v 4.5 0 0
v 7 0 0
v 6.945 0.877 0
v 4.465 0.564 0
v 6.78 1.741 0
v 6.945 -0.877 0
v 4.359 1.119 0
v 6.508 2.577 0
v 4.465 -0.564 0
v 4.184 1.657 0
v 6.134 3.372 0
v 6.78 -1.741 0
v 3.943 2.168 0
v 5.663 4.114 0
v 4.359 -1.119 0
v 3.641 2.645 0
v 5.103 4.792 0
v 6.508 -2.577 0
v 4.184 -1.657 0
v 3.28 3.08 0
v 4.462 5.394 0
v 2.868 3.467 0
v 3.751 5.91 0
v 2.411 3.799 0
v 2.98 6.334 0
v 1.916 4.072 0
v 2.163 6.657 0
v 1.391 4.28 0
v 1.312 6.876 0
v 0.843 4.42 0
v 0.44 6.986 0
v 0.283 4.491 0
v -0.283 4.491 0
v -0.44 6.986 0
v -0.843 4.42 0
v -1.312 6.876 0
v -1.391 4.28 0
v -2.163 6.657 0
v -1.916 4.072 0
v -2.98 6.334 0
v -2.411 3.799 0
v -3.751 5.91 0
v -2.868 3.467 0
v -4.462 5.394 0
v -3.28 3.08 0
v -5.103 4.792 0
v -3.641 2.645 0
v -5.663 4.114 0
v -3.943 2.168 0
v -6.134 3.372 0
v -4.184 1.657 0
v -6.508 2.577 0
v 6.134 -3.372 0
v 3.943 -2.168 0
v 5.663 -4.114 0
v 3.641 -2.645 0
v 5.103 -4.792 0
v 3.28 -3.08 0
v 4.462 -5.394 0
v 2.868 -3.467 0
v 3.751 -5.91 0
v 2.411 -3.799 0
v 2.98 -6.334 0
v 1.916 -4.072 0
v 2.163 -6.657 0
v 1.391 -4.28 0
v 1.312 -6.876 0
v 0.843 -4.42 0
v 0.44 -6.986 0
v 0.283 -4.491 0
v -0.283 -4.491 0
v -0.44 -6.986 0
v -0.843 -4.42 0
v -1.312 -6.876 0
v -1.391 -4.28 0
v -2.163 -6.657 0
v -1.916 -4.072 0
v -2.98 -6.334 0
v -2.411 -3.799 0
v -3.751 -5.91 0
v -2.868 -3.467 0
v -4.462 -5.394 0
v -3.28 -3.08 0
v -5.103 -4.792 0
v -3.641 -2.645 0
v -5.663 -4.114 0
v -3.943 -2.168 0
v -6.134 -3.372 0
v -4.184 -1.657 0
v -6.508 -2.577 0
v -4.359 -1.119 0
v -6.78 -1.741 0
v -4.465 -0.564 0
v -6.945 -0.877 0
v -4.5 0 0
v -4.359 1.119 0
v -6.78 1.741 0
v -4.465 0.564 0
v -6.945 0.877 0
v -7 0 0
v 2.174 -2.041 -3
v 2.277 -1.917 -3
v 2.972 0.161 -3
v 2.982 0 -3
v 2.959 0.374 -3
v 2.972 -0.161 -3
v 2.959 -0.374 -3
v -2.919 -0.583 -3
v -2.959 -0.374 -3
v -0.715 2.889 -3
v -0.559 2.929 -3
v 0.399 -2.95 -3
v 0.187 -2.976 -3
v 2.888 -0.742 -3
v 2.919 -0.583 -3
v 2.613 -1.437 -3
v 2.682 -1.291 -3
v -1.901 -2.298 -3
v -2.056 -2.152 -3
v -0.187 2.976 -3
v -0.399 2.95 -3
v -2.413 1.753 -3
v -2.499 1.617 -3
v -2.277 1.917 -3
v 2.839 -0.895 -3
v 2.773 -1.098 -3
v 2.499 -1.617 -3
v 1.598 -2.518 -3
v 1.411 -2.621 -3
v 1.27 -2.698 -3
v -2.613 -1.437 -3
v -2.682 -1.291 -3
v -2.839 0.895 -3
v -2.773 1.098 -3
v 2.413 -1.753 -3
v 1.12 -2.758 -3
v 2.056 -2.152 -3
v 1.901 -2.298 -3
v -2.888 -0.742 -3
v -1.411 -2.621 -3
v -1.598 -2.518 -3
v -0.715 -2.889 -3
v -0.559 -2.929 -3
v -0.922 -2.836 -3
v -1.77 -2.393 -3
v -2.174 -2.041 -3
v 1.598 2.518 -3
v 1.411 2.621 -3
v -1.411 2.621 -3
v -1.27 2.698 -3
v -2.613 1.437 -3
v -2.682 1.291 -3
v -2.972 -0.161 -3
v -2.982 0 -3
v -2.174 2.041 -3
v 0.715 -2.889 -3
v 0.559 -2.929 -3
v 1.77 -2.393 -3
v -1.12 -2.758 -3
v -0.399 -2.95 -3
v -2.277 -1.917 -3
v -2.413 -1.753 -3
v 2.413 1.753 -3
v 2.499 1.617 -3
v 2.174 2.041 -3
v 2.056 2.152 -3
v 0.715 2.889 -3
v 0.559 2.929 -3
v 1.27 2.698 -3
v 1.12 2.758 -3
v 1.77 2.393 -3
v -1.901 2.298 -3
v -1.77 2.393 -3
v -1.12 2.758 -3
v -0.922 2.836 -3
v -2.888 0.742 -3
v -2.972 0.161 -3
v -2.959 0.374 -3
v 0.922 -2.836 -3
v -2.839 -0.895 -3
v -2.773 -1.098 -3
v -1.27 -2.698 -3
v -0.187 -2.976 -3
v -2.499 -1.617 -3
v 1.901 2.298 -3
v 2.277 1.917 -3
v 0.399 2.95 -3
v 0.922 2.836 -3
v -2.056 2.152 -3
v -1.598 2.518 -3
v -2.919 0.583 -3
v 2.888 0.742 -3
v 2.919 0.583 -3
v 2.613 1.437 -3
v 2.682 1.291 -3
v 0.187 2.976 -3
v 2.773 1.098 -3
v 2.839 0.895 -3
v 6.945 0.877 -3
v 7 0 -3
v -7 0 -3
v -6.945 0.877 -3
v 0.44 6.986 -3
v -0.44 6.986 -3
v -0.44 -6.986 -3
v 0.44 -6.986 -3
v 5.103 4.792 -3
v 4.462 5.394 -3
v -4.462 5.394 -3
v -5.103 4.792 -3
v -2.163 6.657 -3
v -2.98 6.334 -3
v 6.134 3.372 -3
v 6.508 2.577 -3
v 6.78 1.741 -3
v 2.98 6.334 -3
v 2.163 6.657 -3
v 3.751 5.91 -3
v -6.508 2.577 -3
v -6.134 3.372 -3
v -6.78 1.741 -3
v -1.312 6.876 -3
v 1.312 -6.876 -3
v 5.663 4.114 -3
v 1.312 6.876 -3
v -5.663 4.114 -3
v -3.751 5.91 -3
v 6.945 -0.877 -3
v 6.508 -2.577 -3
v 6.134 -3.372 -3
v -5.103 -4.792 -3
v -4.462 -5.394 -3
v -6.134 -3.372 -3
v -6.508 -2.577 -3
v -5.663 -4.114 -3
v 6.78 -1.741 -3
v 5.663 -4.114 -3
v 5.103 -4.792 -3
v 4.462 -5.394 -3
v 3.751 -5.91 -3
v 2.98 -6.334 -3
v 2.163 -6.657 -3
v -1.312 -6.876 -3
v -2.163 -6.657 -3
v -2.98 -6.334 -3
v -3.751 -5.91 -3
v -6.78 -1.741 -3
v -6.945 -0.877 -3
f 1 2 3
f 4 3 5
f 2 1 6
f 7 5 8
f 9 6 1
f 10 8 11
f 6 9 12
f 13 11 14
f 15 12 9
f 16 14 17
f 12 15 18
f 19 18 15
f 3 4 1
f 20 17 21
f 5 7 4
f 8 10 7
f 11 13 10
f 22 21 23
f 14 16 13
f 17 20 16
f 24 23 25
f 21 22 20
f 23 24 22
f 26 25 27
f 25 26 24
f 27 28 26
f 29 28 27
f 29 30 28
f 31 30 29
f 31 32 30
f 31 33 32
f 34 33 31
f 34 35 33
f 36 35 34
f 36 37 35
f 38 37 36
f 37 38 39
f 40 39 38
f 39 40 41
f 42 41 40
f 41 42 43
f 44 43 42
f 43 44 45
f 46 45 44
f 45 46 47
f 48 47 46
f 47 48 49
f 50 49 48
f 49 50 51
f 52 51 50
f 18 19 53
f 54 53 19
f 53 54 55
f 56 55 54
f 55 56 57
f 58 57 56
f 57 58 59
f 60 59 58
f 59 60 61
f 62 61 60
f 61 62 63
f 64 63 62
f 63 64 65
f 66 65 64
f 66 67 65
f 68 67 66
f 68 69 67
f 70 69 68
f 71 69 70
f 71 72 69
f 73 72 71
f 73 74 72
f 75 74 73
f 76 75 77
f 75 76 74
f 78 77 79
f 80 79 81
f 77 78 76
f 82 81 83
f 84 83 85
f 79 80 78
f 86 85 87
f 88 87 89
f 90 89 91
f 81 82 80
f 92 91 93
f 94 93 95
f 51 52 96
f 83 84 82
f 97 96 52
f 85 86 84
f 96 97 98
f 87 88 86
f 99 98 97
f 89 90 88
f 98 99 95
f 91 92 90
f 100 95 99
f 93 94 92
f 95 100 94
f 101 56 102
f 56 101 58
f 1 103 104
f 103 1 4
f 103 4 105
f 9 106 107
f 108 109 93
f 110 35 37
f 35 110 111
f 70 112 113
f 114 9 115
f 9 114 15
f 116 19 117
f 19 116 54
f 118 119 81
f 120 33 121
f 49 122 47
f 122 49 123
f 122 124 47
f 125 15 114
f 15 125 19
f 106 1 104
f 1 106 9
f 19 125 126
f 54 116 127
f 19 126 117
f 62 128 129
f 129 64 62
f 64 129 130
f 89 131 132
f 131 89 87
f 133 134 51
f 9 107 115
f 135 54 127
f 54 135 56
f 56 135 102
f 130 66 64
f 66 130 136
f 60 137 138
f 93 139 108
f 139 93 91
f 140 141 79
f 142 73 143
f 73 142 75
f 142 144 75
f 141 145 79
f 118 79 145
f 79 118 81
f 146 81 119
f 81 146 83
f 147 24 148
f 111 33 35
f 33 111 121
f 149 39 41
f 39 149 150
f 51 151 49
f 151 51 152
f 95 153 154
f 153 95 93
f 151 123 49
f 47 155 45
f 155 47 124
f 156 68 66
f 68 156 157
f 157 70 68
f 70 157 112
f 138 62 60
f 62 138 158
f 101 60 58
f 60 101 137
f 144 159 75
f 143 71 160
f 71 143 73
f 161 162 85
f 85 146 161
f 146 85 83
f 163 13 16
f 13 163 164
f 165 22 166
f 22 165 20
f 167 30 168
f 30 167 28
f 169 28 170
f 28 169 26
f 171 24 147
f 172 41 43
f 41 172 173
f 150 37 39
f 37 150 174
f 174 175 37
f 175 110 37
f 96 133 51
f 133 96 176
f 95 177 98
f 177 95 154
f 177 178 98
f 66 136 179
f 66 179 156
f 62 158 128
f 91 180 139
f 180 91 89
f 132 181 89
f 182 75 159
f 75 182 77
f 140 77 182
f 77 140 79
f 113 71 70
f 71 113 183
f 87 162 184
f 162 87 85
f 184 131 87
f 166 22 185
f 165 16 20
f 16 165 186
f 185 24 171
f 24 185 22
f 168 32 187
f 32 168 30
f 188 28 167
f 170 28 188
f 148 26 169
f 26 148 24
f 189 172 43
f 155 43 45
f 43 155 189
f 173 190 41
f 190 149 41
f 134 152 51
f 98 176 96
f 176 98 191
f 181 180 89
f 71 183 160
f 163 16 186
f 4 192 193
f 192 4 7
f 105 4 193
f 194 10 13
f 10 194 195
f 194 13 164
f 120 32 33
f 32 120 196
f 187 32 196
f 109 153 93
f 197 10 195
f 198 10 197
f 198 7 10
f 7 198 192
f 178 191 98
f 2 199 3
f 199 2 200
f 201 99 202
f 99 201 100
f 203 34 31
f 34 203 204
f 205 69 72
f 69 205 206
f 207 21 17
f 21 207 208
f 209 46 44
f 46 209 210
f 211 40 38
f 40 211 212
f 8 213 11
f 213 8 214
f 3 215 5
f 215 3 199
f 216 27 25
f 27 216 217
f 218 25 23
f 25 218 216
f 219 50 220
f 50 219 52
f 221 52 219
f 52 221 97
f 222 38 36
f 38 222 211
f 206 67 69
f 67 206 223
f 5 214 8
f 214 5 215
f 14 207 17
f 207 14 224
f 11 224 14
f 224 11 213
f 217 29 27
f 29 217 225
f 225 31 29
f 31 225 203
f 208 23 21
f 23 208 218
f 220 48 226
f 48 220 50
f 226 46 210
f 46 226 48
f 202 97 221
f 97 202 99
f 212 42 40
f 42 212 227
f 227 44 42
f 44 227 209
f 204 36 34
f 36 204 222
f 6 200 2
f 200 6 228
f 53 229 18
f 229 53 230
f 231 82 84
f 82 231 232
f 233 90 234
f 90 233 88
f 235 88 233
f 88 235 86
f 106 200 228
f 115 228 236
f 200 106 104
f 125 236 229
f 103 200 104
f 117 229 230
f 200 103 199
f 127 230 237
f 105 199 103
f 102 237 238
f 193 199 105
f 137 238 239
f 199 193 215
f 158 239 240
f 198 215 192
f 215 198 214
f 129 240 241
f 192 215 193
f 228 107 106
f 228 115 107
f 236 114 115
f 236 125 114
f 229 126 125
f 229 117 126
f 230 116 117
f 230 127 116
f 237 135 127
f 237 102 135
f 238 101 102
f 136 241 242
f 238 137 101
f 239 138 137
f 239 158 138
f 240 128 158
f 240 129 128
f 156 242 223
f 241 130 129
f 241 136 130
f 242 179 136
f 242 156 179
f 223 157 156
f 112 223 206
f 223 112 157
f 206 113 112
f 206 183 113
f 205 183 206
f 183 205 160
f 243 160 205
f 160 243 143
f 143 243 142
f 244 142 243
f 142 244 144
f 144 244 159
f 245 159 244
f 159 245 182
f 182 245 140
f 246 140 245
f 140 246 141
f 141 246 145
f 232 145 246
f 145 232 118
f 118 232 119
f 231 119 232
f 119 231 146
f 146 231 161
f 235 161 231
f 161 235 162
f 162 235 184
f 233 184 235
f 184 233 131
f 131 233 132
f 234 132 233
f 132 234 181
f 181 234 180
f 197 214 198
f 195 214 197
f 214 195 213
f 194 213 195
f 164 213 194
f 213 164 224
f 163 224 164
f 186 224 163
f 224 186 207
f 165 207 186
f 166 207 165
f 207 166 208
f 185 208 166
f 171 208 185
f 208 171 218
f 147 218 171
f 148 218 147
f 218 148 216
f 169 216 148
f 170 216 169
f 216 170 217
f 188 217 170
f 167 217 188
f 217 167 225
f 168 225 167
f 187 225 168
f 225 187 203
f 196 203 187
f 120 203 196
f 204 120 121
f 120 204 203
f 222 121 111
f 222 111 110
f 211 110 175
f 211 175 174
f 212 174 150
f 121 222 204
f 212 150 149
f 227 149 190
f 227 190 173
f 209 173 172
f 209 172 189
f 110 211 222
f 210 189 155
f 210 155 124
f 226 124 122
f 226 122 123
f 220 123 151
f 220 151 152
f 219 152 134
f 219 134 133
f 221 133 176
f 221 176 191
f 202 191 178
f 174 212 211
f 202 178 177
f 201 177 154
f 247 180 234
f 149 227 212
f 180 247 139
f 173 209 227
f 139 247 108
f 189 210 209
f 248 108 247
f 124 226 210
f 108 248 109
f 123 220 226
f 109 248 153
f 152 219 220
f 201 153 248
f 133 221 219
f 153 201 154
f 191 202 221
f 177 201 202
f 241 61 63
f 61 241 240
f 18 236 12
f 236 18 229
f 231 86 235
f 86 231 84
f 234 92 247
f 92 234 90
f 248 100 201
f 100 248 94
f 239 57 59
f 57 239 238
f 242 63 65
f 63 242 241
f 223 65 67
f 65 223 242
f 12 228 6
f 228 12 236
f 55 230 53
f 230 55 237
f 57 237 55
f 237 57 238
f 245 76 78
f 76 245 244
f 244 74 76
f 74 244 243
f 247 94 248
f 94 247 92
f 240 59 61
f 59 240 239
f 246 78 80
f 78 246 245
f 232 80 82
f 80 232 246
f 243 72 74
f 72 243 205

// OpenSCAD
$fn = 50;


difference() {
	union() {
		translate(v = [0, 0, -3.0000000000]) {
			cylinder(h = 3, r = 7.0000000000);
		}
	}
	union() {
		translate(v = [0, 0, 0]) {
			rotate(a = [0, 0, 0]) {
				difference() {
					union() {
						translate(v = [0, 0, -6.0000000000]) {
							cylinder(h = 6, r = 2.2500000000);
						}
						translate(v = [0, 0, -4.2000000000]) {
							cylinder(h = 4.2000000000, r1 = 2.3750000000, r2 = 4.5000000000);
						}
						translate(v = [0, 0, -6.0000000000]) {
							cylinder(h = 6, r = 2.3750000000);
						}
						translate(v = [0, 0, -6.0000000000]) {
							cylinder(h = 6, r = 2.2500000000);
						}
					}
					union();
				}
			}
		}
	}
}
